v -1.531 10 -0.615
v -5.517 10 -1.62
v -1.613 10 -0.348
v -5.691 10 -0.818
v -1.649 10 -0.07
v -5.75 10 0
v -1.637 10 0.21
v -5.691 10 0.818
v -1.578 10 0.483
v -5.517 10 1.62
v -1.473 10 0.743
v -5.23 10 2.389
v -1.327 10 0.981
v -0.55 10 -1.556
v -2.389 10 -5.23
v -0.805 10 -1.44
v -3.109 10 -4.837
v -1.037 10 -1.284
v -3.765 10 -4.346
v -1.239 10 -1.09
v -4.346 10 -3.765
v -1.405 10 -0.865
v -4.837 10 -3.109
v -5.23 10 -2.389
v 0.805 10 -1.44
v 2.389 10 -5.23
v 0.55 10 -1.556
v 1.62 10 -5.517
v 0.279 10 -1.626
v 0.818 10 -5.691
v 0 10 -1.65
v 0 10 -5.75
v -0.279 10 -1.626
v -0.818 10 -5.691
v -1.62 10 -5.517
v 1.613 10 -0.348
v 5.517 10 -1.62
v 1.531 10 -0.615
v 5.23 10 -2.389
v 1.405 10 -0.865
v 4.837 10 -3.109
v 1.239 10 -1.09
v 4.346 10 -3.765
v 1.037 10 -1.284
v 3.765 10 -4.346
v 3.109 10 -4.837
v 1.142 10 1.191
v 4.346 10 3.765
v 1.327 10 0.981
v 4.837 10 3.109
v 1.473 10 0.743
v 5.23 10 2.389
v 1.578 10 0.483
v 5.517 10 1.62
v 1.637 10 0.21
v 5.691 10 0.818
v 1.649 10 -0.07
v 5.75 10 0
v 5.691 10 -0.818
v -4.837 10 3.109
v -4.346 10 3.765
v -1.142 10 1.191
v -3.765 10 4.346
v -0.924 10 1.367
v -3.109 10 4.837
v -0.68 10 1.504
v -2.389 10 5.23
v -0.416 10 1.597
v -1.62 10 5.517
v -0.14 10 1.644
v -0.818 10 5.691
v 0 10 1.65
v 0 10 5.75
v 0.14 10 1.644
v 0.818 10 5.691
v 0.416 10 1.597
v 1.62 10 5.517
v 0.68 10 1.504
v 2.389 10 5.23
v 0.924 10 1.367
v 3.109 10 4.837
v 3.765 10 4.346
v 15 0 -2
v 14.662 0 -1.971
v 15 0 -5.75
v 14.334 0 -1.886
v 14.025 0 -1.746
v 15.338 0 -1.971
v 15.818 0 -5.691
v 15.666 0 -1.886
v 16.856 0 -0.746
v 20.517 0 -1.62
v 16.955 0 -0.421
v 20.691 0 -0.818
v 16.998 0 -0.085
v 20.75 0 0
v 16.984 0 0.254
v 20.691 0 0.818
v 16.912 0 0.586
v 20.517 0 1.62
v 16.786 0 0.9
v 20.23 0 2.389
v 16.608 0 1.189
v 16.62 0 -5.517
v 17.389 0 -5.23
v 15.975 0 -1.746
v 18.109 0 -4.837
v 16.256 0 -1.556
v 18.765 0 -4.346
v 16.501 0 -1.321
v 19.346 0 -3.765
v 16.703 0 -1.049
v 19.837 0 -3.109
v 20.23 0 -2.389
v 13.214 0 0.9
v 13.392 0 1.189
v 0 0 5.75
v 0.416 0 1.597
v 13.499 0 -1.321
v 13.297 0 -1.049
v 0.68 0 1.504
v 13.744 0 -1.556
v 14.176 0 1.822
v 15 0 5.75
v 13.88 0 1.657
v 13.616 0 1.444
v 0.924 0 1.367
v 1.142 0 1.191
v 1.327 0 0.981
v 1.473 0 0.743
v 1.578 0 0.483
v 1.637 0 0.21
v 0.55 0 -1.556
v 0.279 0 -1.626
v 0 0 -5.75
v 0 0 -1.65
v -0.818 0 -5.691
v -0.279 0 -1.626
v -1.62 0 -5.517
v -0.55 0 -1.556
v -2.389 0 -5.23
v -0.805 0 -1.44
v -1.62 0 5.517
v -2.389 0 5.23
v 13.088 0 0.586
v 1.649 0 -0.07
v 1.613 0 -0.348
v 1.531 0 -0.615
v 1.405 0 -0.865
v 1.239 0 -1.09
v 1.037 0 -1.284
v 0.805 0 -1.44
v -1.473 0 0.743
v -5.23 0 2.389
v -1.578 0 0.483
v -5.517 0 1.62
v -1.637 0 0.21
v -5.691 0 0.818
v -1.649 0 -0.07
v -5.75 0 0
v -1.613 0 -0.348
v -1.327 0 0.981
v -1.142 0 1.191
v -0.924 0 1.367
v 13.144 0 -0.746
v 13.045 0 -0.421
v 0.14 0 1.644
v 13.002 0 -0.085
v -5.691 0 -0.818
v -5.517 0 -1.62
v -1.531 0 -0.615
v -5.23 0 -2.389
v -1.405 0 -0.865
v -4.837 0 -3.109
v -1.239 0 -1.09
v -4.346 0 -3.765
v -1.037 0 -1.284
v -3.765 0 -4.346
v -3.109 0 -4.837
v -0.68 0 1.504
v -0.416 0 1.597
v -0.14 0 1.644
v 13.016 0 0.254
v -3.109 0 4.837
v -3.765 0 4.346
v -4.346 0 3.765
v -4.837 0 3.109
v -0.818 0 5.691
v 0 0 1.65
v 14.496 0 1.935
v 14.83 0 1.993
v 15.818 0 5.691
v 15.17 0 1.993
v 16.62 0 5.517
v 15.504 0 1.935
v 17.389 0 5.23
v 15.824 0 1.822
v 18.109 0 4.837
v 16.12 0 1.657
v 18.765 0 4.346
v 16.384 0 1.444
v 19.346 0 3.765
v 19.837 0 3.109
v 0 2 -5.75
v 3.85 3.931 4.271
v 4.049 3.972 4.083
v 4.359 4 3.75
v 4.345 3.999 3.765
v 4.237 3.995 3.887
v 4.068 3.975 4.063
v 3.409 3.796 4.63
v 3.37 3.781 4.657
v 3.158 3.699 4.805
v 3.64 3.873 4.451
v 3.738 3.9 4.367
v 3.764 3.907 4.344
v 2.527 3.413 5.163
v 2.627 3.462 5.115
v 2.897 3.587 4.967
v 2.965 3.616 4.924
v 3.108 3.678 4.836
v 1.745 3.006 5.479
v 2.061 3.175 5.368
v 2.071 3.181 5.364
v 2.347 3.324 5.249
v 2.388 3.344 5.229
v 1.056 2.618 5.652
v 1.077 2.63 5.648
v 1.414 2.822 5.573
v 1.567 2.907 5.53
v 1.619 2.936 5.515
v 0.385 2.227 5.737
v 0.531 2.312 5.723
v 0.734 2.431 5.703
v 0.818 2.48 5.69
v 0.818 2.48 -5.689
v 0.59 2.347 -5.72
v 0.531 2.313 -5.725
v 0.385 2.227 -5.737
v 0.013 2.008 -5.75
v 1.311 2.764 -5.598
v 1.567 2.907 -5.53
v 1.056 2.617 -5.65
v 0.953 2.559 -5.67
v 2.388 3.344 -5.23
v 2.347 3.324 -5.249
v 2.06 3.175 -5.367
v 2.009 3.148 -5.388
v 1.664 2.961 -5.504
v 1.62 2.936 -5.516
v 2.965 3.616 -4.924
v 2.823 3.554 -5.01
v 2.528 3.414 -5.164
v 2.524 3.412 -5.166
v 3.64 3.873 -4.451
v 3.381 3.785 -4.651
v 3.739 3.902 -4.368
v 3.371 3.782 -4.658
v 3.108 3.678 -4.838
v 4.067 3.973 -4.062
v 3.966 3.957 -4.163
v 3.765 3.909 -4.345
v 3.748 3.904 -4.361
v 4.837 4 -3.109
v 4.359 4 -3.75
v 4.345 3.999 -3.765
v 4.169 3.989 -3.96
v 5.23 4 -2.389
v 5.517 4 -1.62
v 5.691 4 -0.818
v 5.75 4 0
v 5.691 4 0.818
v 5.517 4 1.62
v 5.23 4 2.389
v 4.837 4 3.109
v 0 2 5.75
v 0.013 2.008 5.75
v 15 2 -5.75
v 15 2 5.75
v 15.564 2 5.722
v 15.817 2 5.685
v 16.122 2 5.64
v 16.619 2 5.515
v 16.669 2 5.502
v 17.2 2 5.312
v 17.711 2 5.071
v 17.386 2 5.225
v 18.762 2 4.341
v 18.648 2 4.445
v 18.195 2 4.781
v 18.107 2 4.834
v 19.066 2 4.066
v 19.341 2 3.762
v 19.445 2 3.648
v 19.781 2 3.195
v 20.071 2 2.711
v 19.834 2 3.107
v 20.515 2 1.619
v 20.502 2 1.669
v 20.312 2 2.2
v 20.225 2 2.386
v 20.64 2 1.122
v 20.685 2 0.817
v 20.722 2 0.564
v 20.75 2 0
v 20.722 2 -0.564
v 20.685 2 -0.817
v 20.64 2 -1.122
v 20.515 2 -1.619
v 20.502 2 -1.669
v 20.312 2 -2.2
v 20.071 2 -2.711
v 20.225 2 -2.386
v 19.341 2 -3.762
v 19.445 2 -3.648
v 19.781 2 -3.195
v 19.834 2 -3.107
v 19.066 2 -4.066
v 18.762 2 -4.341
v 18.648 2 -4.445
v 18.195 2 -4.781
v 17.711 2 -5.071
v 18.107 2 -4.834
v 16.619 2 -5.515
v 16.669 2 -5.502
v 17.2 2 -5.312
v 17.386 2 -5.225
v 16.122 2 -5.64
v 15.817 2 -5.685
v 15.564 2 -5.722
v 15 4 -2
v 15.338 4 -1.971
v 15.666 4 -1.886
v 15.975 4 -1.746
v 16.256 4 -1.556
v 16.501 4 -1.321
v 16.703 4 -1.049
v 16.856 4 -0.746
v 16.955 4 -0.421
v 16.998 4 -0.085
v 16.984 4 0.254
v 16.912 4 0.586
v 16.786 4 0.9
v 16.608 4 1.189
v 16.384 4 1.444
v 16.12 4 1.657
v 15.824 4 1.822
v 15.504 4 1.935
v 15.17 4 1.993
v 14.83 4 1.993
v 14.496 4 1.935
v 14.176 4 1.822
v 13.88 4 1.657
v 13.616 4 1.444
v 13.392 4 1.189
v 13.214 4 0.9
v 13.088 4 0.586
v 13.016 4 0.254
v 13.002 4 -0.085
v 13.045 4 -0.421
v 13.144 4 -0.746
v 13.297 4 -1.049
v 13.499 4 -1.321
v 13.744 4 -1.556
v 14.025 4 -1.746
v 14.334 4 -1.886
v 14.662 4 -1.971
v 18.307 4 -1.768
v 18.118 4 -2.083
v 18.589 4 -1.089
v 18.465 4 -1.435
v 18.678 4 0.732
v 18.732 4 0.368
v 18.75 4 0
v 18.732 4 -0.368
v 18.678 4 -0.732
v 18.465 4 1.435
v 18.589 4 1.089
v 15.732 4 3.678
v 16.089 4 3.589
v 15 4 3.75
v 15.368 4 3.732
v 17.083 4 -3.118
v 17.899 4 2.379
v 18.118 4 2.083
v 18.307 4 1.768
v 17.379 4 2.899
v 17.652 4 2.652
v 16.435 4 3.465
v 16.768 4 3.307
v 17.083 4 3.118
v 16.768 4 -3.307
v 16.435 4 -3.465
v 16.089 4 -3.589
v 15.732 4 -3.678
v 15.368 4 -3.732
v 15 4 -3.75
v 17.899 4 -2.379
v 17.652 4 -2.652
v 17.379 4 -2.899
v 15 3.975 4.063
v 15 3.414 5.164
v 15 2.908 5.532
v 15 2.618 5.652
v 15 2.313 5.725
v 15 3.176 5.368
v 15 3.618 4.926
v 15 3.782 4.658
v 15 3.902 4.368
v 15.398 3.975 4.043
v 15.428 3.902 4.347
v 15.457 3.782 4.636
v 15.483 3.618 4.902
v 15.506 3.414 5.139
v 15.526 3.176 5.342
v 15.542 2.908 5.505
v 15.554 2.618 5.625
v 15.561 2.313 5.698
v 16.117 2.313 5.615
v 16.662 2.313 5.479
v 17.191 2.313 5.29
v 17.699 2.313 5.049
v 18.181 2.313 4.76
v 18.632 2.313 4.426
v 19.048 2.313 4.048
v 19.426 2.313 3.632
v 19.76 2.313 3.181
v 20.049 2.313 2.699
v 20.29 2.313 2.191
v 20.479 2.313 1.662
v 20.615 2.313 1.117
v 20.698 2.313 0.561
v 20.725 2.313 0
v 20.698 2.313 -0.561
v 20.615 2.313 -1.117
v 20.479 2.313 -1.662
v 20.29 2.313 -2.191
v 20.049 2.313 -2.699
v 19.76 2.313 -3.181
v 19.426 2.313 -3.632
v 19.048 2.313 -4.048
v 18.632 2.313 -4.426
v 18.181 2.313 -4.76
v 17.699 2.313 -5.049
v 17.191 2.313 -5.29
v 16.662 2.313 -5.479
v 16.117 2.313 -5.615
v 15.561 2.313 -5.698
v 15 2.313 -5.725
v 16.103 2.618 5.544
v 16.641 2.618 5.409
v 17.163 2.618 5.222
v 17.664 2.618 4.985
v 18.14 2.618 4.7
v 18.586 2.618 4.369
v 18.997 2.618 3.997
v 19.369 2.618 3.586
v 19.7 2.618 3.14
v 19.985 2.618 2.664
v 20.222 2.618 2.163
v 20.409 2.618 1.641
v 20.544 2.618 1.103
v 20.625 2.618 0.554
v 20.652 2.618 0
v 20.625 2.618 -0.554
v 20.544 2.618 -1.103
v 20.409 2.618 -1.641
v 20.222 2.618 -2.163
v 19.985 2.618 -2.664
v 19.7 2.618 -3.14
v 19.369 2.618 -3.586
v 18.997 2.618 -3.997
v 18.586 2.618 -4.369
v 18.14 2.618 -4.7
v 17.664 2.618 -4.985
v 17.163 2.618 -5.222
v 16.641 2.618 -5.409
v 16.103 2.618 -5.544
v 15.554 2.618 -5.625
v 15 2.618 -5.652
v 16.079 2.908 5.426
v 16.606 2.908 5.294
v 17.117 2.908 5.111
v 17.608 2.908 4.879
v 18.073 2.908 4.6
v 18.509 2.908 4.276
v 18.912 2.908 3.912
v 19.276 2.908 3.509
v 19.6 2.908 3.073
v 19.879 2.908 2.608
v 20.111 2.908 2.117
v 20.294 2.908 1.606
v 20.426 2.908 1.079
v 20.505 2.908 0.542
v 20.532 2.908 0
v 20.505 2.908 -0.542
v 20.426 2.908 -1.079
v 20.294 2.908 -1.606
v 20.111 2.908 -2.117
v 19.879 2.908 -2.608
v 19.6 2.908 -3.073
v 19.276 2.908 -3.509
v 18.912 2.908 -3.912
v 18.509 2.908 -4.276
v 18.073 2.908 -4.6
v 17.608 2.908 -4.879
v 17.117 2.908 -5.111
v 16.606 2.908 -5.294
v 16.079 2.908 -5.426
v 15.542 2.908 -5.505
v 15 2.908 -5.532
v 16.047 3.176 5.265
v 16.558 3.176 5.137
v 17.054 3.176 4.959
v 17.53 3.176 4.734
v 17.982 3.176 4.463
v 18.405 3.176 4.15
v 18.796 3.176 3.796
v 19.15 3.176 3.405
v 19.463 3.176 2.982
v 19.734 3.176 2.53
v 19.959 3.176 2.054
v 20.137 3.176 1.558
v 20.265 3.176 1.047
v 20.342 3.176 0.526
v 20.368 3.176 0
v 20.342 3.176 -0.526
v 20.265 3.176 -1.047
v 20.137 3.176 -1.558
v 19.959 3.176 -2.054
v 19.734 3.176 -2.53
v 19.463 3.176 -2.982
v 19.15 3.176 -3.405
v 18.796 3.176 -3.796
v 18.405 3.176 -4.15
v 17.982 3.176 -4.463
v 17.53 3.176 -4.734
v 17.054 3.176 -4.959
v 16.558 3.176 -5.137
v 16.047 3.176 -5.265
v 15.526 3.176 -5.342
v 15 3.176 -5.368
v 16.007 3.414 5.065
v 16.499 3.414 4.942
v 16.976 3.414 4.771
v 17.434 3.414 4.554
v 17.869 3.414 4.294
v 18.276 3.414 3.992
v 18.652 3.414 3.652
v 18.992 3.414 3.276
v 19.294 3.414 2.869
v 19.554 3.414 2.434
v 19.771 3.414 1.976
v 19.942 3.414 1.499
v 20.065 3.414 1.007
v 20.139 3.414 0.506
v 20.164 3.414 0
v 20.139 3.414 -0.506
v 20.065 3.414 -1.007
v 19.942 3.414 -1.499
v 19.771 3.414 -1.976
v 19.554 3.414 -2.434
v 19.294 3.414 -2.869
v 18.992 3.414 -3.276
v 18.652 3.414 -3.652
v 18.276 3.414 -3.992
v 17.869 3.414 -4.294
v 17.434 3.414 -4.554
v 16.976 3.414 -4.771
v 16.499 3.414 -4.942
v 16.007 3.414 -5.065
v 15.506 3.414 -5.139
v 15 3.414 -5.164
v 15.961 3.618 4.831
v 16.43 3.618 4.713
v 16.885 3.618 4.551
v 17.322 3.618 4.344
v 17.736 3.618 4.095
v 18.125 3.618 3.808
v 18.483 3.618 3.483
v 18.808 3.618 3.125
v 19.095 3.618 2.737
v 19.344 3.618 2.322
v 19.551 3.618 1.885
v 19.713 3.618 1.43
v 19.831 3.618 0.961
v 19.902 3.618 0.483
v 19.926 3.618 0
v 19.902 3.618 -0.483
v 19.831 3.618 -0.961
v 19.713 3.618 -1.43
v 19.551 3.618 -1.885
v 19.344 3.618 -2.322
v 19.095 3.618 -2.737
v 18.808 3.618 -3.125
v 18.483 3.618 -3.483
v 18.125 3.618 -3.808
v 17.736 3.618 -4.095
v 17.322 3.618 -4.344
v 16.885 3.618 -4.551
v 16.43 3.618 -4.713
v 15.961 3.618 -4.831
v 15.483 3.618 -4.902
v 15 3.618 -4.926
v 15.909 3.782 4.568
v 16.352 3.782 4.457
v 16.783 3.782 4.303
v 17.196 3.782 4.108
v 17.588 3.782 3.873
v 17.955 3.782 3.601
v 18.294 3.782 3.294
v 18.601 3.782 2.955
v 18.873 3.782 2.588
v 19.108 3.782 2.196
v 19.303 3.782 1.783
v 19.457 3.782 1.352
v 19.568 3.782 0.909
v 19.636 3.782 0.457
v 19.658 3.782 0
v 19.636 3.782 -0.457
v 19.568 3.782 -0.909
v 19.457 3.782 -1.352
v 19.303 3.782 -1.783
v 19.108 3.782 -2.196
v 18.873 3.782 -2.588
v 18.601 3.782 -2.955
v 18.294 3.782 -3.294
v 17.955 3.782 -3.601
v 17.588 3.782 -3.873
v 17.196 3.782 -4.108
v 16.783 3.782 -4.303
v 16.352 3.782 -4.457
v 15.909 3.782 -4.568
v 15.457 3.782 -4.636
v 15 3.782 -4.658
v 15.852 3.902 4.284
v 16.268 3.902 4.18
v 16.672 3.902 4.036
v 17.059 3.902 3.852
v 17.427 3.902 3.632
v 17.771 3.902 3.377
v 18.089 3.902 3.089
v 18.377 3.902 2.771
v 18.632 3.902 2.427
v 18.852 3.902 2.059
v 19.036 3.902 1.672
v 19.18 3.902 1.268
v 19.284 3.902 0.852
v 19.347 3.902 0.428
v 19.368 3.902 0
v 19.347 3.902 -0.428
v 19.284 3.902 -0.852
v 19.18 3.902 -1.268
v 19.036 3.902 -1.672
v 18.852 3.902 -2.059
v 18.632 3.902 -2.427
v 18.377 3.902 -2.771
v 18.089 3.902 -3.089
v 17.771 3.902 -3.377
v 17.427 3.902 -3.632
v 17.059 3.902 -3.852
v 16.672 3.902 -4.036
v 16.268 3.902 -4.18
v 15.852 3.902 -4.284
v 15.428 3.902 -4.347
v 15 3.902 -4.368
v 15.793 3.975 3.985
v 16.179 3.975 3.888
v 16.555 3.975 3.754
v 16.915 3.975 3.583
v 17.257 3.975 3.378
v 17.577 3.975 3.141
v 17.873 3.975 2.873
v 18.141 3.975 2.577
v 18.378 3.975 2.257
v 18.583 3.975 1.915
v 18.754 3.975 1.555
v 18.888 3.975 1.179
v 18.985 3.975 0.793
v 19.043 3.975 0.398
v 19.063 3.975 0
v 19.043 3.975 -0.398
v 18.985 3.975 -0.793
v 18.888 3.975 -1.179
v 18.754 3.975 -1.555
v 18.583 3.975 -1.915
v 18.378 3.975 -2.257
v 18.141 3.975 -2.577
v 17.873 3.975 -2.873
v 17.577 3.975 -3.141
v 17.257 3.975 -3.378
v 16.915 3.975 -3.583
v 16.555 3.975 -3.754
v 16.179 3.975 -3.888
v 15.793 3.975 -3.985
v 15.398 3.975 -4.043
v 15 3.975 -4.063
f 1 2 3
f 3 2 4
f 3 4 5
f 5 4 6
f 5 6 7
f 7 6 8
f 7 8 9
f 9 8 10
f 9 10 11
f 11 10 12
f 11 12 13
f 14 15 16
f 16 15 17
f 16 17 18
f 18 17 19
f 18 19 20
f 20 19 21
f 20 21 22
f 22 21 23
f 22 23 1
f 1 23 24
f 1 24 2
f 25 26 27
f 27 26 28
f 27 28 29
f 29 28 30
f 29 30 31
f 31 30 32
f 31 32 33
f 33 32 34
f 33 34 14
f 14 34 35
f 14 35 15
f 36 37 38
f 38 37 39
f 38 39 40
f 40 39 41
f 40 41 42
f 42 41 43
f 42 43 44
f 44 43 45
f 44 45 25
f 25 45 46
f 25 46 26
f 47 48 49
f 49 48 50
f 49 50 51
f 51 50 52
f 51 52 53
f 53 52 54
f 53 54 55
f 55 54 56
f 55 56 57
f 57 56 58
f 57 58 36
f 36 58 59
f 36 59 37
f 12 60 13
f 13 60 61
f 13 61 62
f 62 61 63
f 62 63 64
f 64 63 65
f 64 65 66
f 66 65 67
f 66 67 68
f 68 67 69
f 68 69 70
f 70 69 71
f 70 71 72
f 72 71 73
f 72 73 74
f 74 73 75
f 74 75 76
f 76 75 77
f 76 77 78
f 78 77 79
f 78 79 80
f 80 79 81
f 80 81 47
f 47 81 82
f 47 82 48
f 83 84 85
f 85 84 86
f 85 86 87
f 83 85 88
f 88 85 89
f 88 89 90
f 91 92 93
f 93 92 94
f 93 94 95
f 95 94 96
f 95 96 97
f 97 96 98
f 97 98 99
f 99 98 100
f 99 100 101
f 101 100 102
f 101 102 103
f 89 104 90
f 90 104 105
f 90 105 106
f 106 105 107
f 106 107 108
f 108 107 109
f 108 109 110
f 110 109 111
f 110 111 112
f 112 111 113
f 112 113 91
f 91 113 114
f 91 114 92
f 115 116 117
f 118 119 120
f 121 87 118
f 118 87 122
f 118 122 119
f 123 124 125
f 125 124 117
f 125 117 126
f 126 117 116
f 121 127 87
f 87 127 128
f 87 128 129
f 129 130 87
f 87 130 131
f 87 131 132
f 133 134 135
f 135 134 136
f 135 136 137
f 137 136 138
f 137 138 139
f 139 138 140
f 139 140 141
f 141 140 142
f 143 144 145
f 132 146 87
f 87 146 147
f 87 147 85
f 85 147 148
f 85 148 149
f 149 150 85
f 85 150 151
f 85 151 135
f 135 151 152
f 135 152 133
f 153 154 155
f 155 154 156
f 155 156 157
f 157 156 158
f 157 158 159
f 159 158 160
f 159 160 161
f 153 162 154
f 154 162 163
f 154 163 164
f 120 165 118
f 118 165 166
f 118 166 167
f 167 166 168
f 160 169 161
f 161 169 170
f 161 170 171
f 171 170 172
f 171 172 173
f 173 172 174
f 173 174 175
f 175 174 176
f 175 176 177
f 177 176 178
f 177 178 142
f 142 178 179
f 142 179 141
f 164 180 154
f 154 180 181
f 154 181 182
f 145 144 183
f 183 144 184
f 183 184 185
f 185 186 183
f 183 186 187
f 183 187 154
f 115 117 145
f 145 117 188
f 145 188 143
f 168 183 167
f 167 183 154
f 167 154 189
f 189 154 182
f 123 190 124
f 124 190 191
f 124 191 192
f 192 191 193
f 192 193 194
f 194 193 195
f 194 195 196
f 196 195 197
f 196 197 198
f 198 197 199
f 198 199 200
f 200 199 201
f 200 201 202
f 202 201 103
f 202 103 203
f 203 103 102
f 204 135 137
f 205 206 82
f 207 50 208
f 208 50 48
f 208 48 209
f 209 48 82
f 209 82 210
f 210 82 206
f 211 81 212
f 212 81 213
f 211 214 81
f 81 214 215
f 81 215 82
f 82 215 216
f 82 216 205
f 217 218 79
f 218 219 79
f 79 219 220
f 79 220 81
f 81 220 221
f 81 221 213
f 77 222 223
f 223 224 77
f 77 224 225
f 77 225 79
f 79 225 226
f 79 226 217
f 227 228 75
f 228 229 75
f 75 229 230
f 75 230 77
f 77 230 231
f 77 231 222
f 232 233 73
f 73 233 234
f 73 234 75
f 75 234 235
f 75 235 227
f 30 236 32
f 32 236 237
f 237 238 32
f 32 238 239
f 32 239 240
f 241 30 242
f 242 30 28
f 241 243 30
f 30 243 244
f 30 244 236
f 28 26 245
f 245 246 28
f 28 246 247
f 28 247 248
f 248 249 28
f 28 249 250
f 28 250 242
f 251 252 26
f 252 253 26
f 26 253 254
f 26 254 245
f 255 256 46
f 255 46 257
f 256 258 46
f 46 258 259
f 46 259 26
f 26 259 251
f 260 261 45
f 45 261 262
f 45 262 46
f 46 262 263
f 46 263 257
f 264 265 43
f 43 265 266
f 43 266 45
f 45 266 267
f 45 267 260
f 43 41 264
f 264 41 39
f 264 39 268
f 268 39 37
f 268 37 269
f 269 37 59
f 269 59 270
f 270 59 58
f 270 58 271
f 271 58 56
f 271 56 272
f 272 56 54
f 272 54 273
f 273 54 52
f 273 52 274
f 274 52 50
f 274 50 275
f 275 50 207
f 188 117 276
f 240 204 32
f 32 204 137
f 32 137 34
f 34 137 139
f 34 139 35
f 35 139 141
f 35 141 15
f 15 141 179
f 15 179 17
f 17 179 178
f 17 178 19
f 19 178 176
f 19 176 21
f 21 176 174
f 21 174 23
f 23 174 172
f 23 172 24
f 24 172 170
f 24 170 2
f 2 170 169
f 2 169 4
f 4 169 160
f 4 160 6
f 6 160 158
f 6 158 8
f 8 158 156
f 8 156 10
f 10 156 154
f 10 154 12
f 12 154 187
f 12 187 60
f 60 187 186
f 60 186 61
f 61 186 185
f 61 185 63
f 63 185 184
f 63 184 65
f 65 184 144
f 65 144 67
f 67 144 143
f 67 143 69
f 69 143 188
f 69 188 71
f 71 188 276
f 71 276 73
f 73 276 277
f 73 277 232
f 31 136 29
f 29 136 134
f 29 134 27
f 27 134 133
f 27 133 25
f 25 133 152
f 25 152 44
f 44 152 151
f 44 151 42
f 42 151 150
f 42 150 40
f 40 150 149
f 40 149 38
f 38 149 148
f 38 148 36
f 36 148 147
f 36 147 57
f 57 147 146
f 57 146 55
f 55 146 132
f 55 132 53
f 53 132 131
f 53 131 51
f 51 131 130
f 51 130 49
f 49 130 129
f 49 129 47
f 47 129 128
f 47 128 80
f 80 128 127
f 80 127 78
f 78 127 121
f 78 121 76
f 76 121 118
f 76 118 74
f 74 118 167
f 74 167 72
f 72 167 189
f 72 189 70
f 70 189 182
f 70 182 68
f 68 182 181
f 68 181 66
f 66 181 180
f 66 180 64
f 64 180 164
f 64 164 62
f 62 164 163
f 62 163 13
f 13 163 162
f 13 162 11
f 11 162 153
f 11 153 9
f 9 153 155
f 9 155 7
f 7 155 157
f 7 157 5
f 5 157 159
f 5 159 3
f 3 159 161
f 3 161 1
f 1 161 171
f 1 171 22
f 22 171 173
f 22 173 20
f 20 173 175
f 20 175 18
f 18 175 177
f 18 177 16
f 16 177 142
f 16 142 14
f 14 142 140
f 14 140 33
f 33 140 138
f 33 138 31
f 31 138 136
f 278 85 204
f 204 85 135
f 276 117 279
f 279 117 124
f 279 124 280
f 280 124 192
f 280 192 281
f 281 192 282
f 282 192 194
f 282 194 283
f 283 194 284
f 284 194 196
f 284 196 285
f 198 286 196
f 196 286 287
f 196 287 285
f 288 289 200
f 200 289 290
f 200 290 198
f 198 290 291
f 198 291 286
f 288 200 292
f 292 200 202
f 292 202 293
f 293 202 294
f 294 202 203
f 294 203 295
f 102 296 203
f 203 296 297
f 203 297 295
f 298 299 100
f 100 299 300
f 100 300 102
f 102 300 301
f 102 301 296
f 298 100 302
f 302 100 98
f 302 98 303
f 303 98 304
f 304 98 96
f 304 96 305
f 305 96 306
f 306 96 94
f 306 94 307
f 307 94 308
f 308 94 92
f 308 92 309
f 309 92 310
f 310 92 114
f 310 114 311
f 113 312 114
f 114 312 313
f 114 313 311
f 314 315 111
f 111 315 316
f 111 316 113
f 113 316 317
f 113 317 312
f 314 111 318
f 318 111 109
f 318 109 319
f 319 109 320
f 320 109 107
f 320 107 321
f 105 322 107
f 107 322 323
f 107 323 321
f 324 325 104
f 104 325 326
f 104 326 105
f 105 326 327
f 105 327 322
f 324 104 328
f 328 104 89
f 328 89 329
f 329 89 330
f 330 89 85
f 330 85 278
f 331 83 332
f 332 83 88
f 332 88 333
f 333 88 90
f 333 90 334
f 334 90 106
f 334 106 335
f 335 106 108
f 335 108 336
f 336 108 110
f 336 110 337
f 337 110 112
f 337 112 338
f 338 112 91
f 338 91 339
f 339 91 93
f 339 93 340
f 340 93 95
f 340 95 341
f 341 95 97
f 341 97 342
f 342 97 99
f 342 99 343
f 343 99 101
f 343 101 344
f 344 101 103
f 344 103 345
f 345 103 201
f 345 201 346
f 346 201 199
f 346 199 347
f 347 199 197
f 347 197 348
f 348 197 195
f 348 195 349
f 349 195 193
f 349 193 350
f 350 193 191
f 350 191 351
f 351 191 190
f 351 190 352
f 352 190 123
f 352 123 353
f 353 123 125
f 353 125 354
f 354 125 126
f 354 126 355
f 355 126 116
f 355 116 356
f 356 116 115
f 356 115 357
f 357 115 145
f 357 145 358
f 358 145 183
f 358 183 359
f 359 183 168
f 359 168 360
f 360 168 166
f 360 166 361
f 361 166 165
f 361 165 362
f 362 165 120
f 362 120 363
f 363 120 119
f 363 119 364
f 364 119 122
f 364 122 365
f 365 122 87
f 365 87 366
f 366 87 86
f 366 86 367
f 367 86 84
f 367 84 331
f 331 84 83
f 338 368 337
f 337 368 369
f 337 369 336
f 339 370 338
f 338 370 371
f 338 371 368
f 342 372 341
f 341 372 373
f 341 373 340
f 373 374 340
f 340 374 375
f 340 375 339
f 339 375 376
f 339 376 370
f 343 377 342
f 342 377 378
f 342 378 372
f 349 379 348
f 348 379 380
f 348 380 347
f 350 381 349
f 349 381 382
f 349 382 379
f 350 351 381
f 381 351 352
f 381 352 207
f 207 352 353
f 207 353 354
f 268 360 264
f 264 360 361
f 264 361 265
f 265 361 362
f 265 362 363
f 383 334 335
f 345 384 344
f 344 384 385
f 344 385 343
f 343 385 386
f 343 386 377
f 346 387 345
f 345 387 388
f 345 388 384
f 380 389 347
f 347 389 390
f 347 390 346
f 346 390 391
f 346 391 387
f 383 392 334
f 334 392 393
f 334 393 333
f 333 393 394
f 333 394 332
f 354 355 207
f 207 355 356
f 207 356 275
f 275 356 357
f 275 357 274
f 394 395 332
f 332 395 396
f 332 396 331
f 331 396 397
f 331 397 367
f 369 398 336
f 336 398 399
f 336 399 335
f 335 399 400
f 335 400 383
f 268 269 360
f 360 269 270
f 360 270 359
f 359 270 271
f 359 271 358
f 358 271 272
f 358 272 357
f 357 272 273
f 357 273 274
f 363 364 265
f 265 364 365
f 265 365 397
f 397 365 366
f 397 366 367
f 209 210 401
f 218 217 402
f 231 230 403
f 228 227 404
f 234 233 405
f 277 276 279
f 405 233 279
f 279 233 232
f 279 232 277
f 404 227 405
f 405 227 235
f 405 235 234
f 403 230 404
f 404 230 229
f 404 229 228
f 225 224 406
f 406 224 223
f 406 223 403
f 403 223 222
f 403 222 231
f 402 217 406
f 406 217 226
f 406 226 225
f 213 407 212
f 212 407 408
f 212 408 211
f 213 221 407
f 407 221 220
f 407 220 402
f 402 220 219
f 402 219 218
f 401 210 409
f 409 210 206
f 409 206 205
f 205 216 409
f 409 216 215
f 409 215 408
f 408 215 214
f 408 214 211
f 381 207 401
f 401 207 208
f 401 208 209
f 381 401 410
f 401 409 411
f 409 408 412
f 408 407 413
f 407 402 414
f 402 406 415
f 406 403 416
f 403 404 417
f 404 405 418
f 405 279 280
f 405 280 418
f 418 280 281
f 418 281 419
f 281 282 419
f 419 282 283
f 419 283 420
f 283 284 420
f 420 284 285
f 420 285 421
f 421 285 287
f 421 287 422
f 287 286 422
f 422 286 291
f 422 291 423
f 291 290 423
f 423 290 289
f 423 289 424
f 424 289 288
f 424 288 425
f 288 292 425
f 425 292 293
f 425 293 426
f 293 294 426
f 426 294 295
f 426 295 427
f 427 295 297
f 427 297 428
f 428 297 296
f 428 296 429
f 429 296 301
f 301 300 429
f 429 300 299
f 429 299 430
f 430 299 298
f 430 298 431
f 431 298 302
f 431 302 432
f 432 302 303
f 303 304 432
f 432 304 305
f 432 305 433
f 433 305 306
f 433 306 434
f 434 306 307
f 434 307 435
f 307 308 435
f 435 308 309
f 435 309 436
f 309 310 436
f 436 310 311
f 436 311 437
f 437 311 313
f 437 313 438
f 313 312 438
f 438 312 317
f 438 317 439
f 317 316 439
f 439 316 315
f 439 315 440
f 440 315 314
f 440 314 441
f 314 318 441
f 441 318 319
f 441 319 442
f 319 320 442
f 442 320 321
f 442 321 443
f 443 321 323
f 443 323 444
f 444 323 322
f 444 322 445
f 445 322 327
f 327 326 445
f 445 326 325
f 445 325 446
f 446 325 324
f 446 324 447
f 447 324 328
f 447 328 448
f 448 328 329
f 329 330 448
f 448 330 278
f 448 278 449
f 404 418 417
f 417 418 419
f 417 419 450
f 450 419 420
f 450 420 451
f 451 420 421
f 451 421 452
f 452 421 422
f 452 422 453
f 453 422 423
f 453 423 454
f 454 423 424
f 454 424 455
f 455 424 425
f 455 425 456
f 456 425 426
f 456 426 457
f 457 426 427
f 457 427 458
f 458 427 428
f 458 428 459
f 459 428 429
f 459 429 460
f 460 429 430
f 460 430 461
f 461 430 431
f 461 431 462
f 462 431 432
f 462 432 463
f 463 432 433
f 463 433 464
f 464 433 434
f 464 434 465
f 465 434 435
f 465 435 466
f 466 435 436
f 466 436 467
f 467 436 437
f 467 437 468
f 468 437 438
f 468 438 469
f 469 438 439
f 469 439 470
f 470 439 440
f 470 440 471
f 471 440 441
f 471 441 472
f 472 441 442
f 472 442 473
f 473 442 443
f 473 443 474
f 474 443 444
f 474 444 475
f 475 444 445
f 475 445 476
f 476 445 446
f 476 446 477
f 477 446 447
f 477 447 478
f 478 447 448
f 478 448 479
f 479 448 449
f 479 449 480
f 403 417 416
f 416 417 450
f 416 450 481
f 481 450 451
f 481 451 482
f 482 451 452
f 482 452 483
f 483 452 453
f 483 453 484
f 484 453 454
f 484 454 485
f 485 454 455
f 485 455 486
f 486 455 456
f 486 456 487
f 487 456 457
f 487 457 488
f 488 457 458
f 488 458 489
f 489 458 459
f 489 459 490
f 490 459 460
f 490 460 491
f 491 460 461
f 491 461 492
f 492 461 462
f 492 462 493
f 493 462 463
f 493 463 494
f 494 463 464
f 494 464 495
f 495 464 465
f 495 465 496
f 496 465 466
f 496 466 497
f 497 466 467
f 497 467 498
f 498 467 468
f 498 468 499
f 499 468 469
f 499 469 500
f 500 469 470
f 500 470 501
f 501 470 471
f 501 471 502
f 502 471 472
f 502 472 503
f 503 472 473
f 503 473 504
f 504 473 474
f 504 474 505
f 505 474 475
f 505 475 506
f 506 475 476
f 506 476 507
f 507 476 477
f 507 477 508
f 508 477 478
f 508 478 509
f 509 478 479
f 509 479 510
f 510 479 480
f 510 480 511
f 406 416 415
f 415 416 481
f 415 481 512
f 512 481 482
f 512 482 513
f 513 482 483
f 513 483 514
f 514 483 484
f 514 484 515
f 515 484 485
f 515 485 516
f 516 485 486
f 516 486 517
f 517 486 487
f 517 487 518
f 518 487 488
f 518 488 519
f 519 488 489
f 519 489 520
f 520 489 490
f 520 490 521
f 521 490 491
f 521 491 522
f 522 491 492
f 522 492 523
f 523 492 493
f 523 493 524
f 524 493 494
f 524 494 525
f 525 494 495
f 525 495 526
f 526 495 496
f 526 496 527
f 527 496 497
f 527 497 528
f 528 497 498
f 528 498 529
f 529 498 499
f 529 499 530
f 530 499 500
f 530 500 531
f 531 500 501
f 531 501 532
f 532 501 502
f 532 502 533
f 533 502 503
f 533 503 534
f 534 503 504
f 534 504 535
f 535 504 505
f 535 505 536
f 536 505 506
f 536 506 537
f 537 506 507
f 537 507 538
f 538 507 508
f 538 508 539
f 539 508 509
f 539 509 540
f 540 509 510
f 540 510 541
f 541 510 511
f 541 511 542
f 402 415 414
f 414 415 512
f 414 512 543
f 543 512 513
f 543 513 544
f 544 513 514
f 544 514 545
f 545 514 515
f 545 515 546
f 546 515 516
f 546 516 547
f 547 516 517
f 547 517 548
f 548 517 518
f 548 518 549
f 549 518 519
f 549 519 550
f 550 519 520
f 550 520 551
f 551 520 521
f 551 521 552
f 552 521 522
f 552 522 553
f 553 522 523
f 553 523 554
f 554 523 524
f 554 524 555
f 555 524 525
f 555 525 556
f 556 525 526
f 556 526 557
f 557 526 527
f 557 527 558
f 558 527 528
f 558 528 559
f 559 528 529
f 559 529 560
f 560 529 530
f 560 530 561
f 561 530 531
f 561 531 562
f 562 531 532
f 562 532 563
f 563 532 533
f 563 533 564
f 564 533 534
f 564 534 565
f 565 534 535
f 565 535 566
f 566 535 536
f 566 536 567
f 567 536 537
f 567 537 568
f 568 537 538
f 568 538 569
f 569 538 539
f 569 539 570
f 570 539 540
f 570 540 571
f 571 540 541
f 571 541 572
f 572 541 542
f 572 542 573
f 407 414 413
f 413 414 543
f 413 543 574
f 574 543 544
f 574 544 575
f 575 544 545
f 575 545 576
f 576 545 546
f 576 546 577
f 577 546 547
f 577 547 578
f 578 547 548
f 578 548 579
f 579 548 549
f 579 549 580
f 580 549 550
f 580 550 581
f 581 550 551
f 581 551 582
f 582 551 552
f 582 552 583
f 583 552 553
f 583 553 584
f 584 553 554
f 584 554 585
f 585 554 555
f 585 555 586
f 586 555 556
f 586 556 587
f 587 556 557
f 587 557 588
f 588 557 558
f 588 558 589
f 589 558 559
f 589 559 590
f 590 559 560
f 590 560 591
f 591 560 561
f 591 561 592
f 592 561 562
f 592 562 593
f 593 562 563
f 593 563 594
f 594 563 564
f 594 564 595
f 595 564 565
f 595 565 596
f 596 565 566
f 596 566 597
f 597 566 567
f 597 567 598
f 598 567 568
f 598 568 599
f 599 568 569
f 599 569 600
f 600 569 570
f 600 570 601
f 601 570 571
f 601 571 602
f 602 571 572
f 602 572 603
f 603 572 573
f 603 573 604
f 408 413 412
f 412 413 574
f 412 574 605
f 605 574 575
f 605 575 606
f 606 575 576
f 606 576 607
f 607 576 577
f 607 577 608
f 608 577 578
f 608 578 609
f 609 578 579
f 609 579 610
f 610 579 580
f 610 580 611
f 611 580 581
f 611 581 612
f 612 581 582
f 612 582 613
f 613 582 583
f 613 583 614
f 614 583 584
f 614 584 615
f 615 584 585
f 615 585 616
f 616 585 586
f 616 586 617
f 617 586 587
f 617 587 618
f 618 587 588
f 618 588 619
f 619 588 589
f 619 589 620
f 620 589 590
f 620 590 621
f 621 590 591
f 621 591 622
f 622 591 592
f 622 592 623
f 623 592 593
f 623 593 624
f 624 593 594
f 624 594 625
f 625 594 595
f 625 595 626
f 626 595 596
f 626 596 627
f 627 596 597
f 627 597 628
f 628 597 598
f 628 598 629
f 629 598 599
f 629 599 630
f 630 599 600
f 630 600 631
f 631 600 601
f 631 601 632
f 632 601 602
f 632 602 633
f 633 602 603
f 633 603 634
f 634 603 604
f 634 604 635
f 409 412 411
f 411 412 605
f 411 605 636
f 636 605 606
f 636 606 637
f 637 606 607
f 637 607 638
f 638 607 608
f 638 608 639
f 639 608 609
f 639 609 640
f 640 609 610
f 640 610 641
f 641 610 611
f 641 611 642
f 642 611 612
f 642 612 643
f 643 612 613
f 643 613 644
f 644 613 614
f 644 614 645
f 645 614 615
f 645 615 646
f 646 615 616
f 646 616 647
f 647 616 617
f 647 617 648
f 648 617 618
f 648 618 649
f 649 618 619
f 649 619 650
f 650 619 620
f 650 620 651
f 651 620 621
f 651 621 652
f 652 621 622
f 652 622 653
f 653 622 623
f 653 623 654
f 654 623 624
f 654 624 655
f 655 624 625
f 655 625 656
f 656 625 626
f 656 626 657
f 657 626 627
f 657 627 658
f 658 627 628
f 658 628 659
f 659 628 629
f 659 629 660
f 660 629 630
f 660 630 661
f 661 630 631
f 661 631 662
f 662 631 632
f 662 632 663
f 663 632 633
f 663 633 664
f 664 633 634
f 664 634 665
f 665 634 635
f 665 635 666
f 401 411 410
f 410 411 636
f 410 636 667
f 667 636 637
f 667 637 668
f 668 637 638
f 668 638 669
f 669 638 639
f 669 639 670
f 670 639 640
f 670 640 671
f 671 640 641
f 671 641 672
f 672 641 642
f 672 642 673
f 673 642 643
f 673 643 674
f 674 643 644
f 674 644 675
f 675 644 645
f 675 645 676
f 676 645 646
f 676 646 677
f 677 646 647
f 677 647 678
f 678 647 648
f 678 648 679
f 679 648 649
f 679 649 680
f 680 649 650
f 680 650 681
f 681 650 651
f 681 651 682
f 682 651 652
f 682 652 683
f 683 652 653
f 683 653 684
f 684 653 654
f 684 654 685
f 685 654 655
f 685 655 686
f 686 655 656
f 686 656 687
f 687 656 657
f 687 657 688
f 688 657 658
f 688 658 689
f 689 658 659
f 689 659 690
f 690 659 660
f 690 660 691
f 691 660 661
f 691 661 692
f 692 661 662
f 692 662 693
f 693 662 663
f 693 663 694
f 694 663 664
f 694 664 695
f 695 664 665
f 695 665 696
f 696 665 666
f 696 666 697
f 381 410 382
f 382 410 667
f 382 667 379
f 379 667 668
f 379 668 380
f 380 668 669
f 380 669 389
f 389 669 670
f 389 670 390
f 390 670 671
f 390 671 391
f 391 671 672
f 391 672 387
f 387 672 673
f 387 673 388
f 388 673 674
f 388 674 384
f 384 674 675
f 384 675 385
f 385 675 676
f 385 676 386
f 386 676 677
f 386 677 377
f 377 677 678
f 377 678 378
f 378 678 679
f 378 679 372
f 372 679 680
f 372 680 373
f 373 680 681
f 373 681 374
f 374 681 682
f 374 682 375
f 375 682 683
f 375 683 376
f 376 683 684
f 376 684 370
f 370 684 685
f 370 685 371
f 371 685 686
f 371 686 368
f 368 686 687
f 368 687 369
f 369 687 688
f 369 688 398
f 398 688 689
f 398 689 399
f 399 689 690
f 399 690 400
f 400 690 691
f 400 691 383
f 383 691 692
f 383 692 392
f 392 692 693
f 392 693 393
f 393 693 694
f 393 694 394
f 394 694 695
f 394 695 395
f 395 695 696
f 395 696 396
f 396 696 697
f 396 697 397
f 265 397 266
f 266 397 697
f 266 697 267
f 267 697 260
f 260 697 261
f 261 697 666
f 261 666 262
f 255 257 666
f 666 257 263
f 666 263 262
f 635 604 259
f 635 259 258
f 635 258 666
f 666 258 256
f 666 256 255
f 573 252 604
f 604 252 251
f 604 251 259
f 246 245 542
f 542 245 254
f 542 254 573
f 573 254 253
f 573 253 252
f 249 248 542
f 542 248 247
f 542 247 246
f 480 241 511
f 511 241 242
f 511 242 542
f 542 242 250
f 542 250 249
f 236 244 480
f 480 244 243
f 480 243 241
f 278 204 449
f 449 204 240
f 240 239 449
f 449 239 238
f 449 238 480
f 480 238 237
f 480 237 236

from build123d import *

# Parameters (mm, degrees)
SKETCH1_R           = 5.75
SKETCH1_R_2         = 1.65
BOSS_EXTRUDE1_DEPTH = 10
SKETCH2_R           = 2
BOSS_EXTRUDE2_DEPTH = 4
FILLET1_R           = 2


with BuildPart() as part:
    # Sketch1 → Boss-Extrude1 (new body)
    with BuildSketch(Plane(origin=(0, 0, 0), x_dir=(1, 0, 0), z_dir=(0, 1, 0))):
        with Locations(Location((0, 0, 0), (0, 0, 270))):
            Circle(SKETCH1_R)
        with Locations(Location((0, 0, 0), (0, 0, 270))):
            Circle(SKETCH1_R_2, mode=Mode.SUBTRACT)
    extrude(amount=BOSS_EXTRUDE1_DEPTH)

    # Sketch2 → Boss-Extrude2 (add)
    # profile 1 of 4: a face of its own
    with BuildSketch(Plane.XZ):
        with BuildLine():
            ThreePointArc((20.75, 0), (19.065863992, 4.065863992), (15, 5.75))
            Line((15, 5.75), (9.25, 0))
            Line((9.25, 0), (15, -5.75))
            ThreePointArc((15, -5.75), (19.065863992, -4.065863992), (20.75, 0))
        make_face()
        with Locations(Location((15, 0, 0), (0, 0, 270))):
            Circle(SKETCH2_R, mode=Mode.SUBTRACT)
    # profile 2 of 4: a face of its own
    with BuildSketch(Plane.XZ):
        with BuildLine():
            Line((9.25, 0), (15, 5.75))
            ThreePointArc((15, 5.75), (10.934136008, 4.065863992), (9.25, 0))
        make_face()
    # profile 3 of 4: a face of its own
    with BuildSketch(Plane.XZ):
        with BuildLine():
            ThreePointArc((9.25, 0), (10.934136008, 4.065863992), (15, 5.75))
            Line((15, 5.75), (0, 5.75))
            ThreePointArc((0, 5.75), (4.065863992, 4.065863992), (5.75, 0))
            ThreePointArc((5.75, 0), (4.065863992, -4.065863992), (0, -5.75))
            Line((0, -5.75), (15, -5.75))
            ThreePointArc((15, -5.75), (10.934136008, -4.065863992), (9.25, 0))
        make_face()
    # profile 4 of 4: a face of its own
    with BuildSketch(Plane.XZ):
        with BuildLine():
            Line((15, -5.75), (9.25, 0))
            ThreePointArc((9.25, 0), (10.934136008, -4.065863992), (15, -5.75))
        make_face()
    extrude(amount=-BOSS_EXTRUDE2_DEPTH)

    # Fillet1
    # the kernel refuses this fillet: 2 mm, written as the material it takes off along each edge
    with BuildSketch(Plane(origin=(-5, 4, -5.75), x_dir=(0, 0, 1), z_dir=(1, 0, 0))) as fillet1_piece_1_section:
        with BuildLine():
            CenterArc((FILLET1_R, FILLET1_R), FILLET1_R, 180, 90)
            Line((0, FILLET1_R), (0, 0))
            Line((0, 0), (FILLET1_R, 0))
        make_face()
    fillet1_piece_1 = extrude(amount=20, mode=Mode.PRIVATE)
    fillet1_piece_1 = fillet1_piece_1 - Plane(origin=(0, 3.514129047, 0), x_dir=(0, 0, 1), z_dir=(0, -1, 0)) * Cylinder(5.75, 48, mode=Mode.PRIVATE)
    add(fillet1_piece_1, mode=Mode.SUBTRACT)
    with BuildSketch(Plane(origin=(15, 4, 5.75), x_dir=(0, -1, 0), z_dir=(-1, 0, 0))) as fillet1_piece_2_section:
        with BuildLine():
            CenterArc((FILLET1_R, -FILLET1_R), FILLET1_R, 90, 90)
            Line((0, -FILLET1_R), (0, 0))
            Line((0, 0), (FILLET1_R, 0))
        make_face()
    fillet1_piece_2 = extrude(amount=20, mode=Mode.PRIVATE)
    fillet1_piece_2 = fillet1_piece_2 - Plane(origin=(0, 3.514130378, 0), x_dir=(0, 0, 1), z_dir=(0, -1, 0)) * Cylinder(5.75, 48, mode=Mode.PRIVATE)
    add(fillet1_piece_2, mode=Mode.SUBTRACT)
    with BuildSketch(Plane(origin=(15, 4, 0), x_dir=(0, 0, -1), z_dir=(-1, 0, 0))) as fillet1_piece_3:
        with BuildLine():
            CenterArc((5.75 - FILLET1_R, FILLET1_R), FILLET1_R, 270, 90)
            Line((5.75, FILLET1_R), (5.75, 0))
            Line((5.75, 0), (5.75 - FILLET1_R, 0))
        make_face()
    revolve(axis=Axis((15, 4, 0), (0, -1, 0)), revolution_arc=180, mode=Mode.SUBTRACT)


solid = part.part
